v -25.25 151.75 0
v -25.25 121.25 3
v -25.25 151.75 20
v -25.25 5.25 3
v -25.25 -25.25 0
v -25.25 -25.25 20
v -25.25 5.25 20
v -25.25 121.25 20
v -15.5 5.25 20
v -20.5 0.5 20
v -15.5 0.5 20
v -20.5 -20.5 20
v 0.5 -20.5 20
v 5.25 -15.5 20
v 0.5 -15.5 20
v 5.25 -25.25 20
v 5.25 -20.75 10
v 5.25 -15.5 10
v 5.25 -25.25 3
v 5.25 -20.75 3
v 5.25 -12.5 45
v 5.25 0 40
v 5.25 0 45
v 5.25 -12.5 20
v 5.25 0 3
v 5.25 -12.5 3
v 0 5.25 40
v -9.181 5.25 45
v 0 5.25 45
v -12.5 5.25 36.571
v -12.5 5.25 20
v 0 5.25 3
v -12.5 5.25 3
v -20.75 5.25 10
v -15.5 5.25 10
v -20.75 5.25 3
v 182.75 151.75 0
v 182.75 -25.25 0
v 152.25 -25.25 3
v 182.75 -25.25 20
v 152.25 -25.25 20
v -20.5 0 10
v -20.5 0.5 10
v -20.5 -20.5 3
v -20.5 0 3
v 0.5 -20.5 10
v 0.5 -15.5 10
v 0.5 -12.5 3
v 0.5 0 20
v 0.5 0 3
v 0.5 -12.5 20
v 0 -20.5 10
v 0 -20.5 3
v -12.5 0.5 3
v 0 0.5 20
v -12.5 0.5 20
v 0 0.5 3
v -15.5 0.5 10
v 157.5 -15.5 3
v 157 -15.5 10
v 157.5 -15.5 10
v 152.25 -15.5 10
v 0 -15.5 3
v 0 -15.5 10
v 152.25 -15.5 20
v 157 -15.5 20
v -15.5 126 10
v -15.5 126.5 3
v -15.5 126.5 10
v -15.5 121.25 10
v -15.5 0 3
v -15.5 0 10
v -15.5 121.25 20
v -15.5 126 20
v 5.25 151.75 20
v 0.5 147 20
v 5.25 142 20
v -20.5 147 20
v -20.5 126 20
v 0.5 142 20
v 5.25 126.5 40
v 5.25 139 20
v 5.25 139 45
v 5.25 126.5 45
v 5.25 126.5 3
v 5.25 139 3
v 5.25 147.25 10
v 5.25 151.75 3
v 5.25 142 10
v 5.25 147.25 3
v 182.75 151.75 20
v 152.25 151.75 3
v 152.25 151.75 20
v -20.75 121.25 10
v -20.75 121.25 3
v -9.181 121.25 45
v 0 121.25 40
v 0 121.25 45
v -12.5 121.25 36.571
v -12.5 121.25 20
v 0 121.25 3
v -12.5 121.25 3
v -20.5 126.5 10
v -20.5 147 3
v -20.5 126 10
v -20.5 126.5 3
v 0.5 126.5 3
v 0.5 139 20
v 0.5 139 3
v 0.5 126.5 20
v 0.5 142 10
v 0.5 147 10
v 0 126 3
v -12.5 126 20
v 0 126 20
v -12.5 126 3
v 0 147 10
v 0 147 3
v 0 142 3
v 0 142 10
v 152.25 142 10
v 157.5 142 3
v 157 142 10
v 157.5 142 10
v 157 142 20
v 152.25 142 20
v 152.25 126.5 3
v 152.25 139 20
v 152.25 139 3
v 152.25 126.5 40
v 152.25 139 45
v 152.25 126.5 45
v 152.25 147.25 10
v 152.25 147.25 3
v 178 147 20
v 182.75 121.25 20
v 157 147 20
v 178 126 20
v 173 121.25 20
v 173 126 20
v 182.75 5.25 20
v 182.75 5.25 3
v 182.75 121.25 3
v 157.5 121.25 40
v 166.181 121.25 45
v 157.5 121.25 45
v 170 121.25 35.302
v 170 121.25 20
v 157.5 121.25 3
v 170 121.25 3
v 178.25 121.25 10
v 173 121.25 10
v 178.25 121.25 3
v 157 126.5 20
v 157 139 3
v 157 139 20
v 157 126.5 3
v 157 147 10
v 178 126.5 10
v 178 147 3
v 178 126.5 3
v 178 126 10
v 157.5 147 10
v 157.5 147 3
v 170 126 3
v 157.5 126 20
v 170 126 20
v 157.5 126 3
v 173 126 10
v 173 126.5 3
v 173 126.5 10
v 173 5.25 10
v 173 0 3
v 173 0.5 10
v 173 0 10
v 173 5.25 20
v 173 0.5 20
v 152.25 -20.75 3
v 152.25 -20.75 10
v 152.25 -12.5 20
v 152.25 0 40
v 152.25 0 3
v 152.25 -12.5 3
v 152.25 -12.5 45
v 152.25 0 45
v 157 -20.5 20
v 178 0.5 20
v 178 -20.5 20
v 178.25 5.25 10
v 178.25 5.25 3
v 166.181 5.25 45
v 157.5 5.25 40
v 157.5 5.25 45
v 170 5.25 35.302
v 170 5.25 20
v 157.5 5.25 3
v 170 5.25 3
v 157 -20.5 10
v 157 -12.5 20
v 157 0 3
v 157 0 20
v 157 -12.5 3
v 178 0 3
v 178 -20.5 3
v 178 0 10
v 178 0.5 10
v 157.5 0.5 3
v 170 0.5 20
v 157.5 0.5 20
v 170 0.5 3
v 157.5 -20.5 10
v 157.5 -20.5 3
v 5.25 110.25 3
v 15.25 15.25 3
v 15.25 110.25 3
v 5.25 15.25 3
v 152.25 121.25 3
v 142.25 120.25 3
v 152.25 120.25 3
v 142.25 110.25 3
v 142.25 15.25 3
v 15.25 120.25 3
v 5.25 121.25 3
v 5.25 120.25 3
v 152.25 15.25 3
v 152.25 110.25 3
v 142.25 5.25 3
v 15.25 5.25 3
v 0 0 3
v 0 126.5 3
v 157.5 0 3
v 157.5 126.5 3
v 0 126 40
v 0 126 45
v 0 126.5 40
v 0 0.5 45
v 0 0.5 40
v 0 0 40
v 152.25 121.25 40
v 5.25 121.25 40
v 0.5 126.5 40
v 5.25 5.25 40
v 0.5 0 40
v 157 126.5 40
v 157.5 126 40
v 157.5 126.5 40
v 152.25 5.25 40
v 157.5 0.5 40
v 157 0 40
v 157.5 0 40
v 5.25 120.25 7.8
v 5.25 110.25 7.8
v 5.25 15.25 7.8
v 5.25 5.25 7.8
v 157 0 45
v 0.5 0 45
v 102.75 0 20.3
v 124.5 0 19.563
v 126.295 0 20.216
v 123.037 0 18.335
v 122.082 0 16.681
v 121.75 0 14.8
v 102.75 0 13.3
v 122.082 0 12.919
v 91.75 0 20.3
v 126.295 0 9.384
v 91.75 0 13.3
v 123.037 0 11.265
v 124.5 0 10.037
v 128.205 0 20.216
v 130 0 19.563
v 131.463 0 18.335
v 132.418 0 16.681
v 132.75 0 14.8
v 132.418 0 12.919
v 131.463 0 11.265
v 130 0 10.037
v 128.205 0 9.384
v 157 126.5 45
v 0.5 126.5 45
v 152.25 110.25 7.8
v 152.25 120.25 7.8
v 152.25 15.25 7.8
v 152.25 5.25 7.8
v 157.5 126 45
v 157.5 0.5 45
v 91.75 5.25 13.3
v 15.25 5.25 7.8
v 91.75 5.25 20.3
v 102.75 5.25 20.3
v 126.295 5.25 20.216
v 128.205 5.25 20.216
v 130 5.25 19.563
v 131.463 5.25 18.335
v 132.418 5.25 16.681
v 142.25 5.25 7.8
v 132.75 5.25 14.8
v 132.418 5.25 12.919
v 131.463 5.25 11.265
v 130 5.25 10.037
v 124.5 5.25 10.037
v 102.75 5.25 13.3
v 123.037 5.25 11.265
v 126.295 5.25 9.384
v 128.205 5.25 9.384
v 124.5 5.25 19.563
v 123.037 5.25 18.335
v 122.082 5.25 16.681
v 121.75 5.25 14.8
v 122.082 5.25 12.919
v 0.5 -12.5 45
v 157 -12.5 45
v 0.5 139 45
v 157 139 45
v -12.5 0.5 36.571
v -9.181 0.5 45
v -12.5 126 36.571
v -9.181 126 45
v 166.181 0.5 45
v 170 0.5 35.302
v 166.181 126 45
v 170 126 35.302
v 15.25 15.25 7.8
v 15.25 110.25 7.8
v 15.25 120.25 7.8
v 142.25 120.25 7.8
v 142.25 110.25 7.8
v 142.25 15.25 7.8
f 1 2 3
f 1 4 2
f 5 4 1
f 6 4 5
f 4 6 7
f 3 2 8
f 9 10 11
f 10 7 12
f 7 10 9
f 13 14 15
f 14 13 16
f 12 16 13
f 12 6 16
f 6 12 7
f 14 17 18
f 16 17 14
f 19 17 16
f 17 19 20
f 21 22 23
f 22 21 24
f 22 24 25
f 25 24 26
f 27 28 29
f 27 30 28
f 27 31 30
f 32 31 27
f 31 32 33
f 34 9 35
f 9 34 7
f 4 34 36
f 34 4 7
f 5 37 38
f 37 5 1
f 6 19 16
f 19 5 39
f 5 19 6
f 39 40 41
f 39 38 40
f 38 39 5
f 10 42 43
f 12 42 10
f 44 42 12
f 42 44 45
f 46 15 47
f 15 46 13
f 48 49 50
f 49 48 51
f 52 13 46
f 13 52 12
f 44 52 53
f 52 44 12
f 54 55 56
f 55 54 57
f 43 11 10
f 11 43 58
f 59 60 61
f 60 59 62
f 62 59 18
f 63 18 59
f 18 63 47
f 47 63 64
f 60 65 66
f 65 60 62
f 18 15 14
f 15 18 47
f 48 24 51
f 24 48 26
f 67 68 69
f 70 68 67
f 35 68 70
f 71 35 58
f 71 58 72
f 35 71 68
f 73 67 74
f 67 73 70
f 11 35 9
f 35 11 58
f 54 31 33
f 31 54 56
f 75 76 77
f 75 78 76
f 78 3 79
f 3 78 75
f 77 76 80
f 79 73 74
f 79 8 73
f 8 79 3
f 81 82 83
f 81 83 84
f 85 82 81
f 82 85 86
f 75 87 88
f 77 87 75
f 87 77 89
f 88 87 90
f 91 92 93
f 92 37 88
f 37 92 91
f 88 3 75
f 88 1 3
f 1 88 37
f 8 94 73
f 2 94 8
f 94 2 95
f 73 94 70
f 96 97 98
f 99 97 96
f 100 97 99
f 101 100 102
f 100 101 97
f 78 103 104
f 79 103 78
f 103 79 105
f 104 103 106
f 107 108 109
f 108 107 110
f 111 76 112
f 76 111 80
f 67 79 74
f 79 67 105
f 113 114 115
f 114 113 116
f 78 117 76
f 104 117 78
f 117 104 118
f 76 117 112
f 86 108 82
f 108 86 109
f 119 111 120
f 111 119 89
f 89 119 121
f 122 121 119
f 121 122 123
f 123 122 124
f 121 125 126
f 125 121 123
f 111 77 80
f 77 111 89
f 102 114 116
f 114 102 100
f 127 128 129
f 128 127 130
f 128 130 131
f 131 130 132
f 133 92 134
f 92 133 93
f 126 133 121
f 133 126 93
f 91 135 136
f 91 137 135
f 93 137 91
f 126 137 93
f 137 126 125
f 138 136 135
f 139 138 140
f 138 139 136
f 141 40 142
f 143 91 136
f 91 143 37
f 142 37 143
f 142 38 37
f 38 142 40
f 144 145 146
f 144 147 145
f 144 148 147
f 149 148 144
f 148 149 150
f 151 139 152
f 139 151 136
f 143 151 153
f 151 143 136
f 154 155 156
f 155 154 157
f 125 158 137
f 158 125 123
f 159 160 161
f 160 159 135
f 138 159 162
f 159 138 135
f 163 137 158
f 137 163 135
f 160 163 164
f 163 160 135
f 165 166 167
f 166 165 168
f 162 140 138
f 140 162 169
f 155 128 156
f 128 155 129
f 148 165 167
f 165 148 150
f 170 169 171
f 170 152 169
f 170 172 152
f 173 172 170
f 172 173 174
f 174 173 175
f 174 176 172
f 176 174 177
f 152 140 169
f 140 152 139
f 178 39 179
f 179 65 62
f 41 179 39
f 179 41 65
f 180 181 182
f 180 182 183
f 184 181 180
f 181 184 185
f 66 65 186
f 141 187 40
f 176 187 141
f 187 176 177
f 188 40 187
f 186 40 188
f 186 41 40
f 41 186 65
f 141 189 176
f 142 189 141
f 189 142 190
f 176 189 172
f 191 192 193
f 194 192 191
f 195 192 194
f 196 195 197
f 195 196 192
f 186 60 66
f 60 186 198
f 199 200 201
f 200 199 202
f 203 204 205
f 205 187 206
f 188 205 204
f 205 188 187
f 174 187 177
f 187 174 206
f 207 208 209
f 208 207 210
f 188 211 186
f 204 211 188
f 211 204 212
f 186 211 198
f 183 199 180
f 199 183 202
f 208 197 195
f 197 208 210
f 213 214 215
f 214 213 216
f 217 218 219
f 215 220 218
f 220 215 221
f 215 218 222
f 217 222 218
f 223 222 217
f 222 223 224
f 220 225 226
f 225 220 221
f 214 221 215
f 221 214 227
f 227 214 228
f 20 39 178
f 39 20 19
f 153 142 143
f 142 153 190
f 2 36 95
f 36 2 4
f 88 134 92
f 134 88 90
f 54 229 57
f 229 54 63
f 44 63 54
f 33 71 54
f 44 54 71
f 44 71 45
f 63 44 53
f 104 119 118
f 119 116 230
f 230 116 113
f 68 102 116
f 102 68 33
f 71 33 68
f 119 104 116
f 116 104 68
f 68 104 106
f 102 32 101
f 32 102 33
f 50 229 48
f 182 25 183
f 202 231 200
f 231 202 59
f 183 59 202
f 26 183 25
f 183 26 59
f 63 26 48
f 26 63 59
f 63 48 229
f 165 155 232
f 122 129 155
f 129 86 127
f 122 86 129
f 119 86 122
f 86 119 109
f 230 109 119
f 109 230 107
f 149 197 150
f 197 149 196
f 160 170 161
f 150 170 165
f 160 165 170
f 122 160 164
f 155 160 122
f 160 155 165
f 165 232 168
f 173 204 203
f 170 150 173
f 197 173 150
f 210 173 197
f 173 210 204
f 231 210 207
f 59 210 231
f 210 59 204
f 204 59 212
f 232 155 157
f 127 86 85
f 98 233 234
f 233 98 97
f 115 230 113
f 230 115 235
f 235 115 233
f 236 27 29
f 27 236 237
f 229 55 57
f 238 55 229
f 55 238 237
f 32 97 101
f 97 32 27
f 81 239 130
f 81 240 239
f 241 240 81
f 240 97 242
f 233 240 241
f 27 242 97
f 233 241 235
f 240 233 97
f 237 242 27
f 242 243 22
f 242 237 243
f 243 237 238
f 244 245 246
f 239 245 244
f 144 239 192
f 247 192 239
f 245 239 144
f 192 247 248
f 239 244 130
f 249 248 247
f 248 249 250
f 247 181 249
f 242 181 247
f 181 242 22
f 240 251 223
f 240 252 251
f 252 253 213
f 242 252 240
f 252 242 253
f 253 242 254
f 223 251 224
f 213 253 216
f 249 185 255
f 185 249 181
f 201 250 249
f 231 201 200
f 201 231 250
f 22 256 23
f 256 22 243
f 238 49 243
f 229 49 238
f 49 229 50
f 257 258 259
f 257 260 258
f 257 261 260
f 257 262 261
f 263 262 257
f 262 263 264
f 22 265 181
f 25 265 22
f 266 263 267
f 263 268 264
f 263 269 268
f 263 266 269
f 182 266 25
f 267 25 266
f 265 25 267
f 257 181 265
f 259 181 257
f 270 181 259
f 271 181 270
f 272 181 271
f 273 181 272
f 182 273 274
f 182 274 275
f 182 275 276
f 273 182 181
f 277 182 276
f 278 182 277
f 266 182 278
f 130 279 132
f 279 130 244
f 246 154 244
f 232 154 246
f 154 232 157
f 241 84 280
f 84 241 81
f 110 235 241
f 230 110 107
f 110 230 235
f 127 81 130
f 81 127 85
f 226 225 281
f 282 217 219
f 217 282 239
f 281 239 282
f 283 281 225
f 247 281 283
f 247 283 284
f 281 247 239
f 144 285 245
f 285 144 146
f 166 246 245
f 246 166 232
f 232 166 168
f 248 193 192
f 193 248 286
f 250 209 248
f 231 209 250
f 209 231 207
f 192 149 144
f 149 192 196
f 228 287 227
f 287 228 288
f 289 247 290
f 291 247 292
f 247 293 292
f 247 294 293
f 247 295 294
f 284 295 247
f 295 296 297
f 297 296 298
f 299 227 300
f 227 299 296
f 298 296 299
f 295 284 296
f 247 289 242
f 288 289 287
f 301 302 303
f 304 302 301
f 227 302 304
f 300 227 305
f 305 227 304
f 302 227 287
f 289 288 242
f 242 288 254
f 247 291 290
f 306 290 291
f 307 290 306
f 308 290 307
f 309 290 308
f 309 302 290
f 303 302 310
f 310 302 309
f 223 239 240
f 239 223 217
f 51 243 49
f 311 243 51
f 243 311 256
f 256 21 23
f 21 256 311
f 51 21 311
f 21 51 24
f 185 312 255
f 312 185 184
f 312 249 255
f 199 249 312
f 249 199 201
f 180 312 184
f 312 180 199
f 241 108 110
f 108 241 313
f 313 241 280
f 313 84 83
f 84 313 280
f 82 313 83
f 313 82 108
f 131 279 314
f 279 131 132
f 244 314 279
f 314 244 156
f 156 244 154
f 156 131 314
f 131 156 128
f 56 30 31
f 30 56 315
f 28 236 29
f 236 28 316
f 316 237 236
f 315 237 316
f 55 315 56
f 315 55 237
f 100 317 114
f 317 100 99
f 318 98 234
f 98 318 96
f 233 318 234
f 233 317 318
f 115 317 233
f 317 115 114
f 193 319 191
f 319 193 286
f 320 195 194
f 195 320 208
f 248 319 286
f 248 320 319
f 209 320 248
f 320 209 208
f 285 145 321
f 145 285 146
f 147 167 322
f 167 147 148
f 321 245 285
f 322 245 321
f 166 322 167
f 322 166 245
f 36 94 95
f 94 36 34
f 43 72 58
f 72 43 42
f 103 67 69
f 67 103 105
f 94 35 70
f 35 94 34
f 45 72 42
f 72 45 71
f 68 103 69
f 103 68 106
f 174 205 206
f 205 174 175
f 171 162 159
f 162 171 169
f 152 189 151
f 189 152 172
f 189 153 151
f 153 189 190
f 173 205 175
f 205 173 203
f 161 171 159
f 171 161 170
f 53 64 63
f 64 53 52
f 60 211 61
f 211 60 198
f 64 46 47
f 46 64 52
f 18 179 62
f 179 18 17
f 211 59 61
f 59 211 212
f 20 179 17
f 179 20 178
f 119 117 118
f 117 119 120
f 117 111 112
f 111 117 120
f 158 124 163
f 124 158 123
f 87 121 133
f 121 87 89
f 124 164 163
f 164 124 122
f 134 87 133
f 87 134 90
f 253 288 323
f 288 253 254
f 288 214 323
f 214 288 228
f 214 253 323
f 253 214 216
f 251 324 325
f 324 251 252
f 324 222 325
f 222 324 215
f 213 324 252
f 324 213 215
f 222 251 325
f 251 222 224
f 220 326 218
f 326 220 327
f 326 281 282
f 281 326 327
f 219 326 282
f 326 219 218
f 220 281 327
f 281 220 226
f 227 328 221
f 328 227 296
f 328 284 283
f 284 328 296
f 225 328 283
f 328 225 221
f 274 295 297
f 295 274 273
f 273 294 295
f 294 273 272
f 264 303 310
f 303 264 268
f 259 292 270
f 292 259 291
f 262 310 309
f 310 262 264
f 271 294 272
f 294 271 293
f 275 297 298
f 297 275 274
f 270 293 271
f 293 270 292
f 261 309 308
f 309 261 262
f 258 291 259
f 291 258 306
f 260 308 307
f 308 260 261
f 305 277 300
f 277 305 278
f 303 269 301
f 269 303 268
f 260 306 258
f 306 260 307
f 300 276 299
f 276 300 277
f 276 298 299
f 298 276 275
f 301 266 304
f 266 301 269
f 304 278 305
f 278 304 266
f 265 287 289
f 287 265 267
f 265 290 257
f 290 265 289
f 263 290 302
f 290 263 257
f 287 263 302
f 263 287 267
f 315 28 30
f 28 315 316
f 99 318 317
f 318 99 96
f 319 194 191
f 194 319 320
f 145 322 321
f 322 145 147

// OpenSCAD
/* This piece was designed by Shawn French (McMaster University, Ontario, Canada)
It is part of the SCIFIcube (SCIentific Fluorescence Imaging cube), a small and portable 3D-printed
fluorescence imager for bacteria, yeast, or any colony-forming organism.  It works well with solid
agar medium, and can image high density samples rapidly over time.  

Details can be found at https://www.github.com/sfrench007/scificube

Copyright 2017 McMaster University

Redistribution and use in source and binary forms, with or without modification, are permitted provided that the following conditions are met:

1. Redistributions of source code must retain the above copyright notice, this list of conditions and the following disclaimer.

2. Redistributions in binary form must reproduce the above copyright notice, this list of conditions and the following disclaimer in the documentation and/or other materials provided with the distribution.

3. Neither the name of the copyright holder nor the names of its contributors may be used to endorse or promote products derived from this software without specific prior written permission.

THIS SOFTWARE IS PROVIDED BY THE COPYRIGHT HOLDERS AND CONTRIBUTORS "AS IS" AND ANY EXPRESS OR IMPLIED WARRANTIES, INCLUDING, BUT NOT LIMITED TO, THE IMPLIED WARRANTIES OF MERCHANTABILITY AND FITNESS FOR A PARTICULAR PURPOSE ARE DISCLAIMED. IN NO EVENT SHALL THE COPYRIGHT HOLDER OR CONTRIBUTORS BE LIABLE FOR ANY DIRECT, INDIRECT, INCIDENTAL, SPECIAL, EXEMPLARY, OR CONSEQUENTIAL DAMAGES (INCLUDING, BUT NOT LIMITED TO, PROCUREMENT OF SUBSTITUTE GOODS OR SERVICES; LOSS OF USE, DATA, OR PROFITS; OR BUSINESS INTERRUPTION) HOWEVER CAUSED AND ON ANY THEORY OF LIABILITY, WHETHER IN CONTRACT, STRICT LIABILITY, OR TORT (INCLUDING NEGLIGENCE OR OTHERWISE) ARISING IN ANY WAY OUT OF THE USE OF THIS SOFTWARE, EVEN IF ADVISED OF THE POSSIBILITY OF SUCH DAMAGE.

*/

// Height 175 mm (camera to base)
// Width 157 mm
// Depth 134 mm
// 135 mm camera to top of transilluminator
// 40 mm transilluminator height (base height)

boardWidth = 147;
boardDepth = 115;
boardHeight = 2;
acWidth = 11.5;
acHeight = 9;
acOffset = 5;
acRad = (acHeight/2)+1;
switchWidth = 11;
switchHeight = 7;
switchOffset = 3.5;

transDepth = 126.5;
transWidth = 157.5;
transHeight = 40;
transWallWidth = (transWidth-boardWidth)/2;

rigWallWidth = 3;
rigHeight = 175;
rigWidth = transWidth + (rigWallWidth * 2);
rigDepth = transDepth + (rigWallWidth * 2);
echo(rigWidth);
echo(rigDepth);
riserHeight = 4.8;
riserWidth = 10;

railWidth = 20;
sideWallWidth = 2;
allowance = 1;
slitDepth = 10;

// The rig first
module drawRig() {
	union() {
		translate([-(railWidth+transWallWidth),-(railWidth+transWallWidth),0]) cube(size = [rigWidth+((railWidth)*2)+transWallWidth-(allowance/2)-0.25, rigDepth+((railWidth)*2)+transWallWidth-(allowance/2)-0.25, rigWallWidth], center = false);

		// Bottom left brace
		translate([-(railWidth+transWallWidth),-(railWidth+transWallWidth),0]) 
		difference() {
			cube(size=[railWidth+(transWallWidth*2),railWidth+(transWallWidth*2),transHeight/2],center=false);
			translate([transWallWidth-(allowance/2),transWallWidth-(allowance/2),0]) cube(size=[railWidth+allowance,railWidth+allowance,transHeight/2],center=false);
			// Slits for sliding walls
			translate([railWidth+transWallWidth,transWallWidth+(railWidth*1/4)-(allowance/2),0]) cube(size=[transWallWidth,sideWallWidth+allowance,transHeight/2]);
			translate([transWallWidth+(railWidth*1/4)-(allowance/2),railWidth+transWallWidth,0]) cube(size=[sideWallWidth+allowance,transWallWidth,transHeight/2]);
		}
		translate([-(railWidth+transWallWidth),-(railWidth+transWallWidth),0]) cube(size=[railWidth+(transWallWidth*2),railWidth+(transWallWidth*2),rigWallWidth],center=false);

		// Top left brace
		translate([-(railWidth+transWallWidth),transDepth-transWallWidth,0]) 
		difference() {
			cube(size=[railWidth+(transWallWidth*2),railWidth+(transWallWidth*2),transHeight/2],center=false);
			translate([transWallWidth-(allowance/2),transWallWidth-(allowance/2),0]) cube(size=[railWidth+allowance,railWidth+allowance,transHeight/2],center=false);
			// Slits for sliding walls
			translate([railWidth+transWallWidth,transWallWidth+(railWidth*3/4)-(allowance/2)-sideWallWidth,0]) cube(size=[transWallWidth,sideWallWidth+allowance,transHeight/2]);
			translate([transWallWidth+(railWidth*1/4)-(allowance/2),0,0]) cube(size=[sideWallWidth+allowance,transWallWidth,transHeight/2]);
		}
		translate([-(railWidth+transWallWidth),transDepth-transWallWidth,0]) cube(size=[railWidth+(transWallWidth*2),railWidth+(transWallWidth*2),rigWallWidth],center=false);

		// Top Right brace
		translate([transWidth-transWallWidth,transDepth-transWallWidth,0]) 
		difference() {
			cube(size=[railWidth+(transWallWidth*2),railWidth+(transWallWidth*2),transHeight/2],center=false);
			translate([transWallWidth-(allowance/2),transWallWidth-(allowance/2),0]) cube(size=[railWidth+allowance,railWidth+allowance,transHeight/2],center=false);
			// Slits for sliding walls
			translate([0,transWallWidth+(railWidth*3/4)-(allowance/2)-sideWallWidth,0]) cube(size=[transWallWidth,sideWallWidth+allowance,transHeight/2]);
			translate([transWallWidth+(railWidth*3/4)-(allowance/2)-sideWallWidth,0,0]) cube(size=[sideWallWidth+allowance,transWallWidth,transHeight/2]);
		}
		translate([transWidth-transWallWidth,transDepth-transWallWidth,0]) cube(size=[railWidth+(transWallWidth*2),railWidth+(transWallWidth*2),rigWallWidth],center=false);

		// Bottom right brace
		translate([transWidth-transWallWidth,,-(railWidth+transWallWidth),0]) 
		difference() {
			cube(size=[railWidth+(transWallWidth*2),railWidth+(transWallWidth*2),transHeight/2],center=false);
			translate([transWallWidth-(allowance/2),transWallWidth-(allowance/2),0]) cube(size=[railWidth+allowance,railWidth+allowance,transHeight/2],center=false);
			// Slits for sliding walls
			translate([0,transWallWidth+(railWidth*1/4)-(allowance/2),0]) cube(size=[transWallWidth,sideWallWidth+allowance,transHeight/2]);
			translate([transWallWidth+(railWidth*3/4)-(allowance/2)-sideWallWidth,railWidth+transWallWidth,0]) cube(size=[sideWallWidth+allowance,transWallWidth,transHeight/2]);
		}
		translate([transWidth-transWallWidth,,-(railWidth+transWallWidth),0]) cube(size=[railWidth+(transWallWidth*2),railWidth+(transWallWidth*2),rigWallWidth],center=false);
	}
}

// Then the transilluminator walls 
module drawTrans() {
    union() {
        cube(size = [transWallWidth, transDepth, transHeight], center = false);
        translate([(transWidth-transWallWidth),0,0]) cube(size = [transWallWidth, transDepth, transHeight], center = false);
        cube(size = [transWidth,transWallWidth,transHeight], center = false);
        translate([0,(transDepth-transWallWidth),0]) cube(size = [transWidth,transWallWidth,transHeight], center = false);

        // Now the little locks for the excitation filter
        translate([(allowance/2),(allowance/2)+sideWallWidth-(railWidth*3/4),transHeight/2]) cube(size=[transWallWidth-(allowance/2),railWidth*3/4-sideWallWidth-(allowance/2),(transHeight/2)+5],center=false);
        translate([transWidth-transWallWidth,(allowance/2)+sideWallWidth-(railWidth*3/4),transHeight/2]) cube(size=[transWallWidth-(allowance/2),railWidth*3/4-sideWallWidth-(allowance/2),(transHeight/2)+5],center=false);
        translate([(allowance/2),transDepth,transHeight/2]) cube(size=[transWallWidth-(allowance/2),railWidth*3/4-sideWallWidth-(allowance/2),(transHeight/2)+5],center=false);
        translate([transWidth-transWallWidth,transDepth,transHeight/2]) cube(size=[transWallWidth-(allowance/2),railWidth*3/4-sideWallWidth-(allowance/2),(transHeight/2)+5],center=false);

        translate([-(railWidth*3/4)+sideWallWidth+(allowance/2),(allowance/2),transHeight/2]) cube(size=[railWidth*3/4-sideWallWidth-(allowance/2),transWallWidth-(allowance/2),(transHeight/2)+5],center=false);
        translate([-(railWidth*3/4)+sideWallWidth+(allowance/2),transDepth-transWallWidth,transHeight/2]) cube(size=[railWidth*3/4-sideWallWidth-(allowance/2),transWallWidth-(allowance/2),(transHeight/2)+5],center=false);
        translate([transWidth,(allowance/2),transHeight/2]) cube(size=[railWidth*3/4-sideWallWidth-(allowance/2),transWallWidth-(allowance/2),(transHeight/2)+5],center=false);
        translate([transWidth,transDepth-transWallWidth,transHeight/2]) cube(size=[railWidth*3/4-sideWallWidth-(allowance/2),transWallWidth-(allowance/2),(transHeight/2)+5],center=false);

        // Extra rails to prevent gaps in the walls
        translate([-(railWidth*3/4)-transWallWidth-(allowance/2),0,0]) cube(size = [transWallWidth, transDepth, transHeight/4], center = false);
        translate([(transWidth+(railWidth*3/4)+(allowance/2)),0,0]) cube(size = [transWallWidth, transDepth, transHeight/4], center = false);
        translate([0,-(railWidth*3/4)-transWallWidth-(allowance/2),0]) cube(size = [transWidth,transWallWidth,transHeight/4], center = false);
        translate([0,(transDepth+(railWidth*3/4)+(allowance/2)),0]) cube(size = [transWidth,transWallWidth,transHeight/4], center = false);        
    }
}

// Corner risers for circuit board (4.8 mm high)
module drawRisers() {
    union() {
        translate([transWallWidth,transWallWidth,rigWallWidth]) cube(size = [riserWidth,riserWidth,riserHeight], center = false);
        translate([transWallWidth,(transWallWidth+boardDepth-riserWidth),rigWallWidth]) cube([riserWidth,riserWidth,riserHeight], center = false);
        translate([(transWallWidth+boardWidth-riserWidth),(transWallWidth+boardDepth-riserWidth),rigWallWidth]) cube([riserWidth,riserWidth,riserHeight], center = false);
        translate([(transWallWidth+boardWidth-riserWidth),transWallWidth,rigWallWidth]) cube([riserWidth,riserWidth,riserHeight], center = false);
    }
}

module prism(l, w, h){
  polyhedron(
    points=[[0,0,0], [l,0,0], [l,w,0], [0,w,0], [0,w,h], [l,w,h]],
    faces=[[0,1,2,3],[5,4,3,2],[0,4,5,1],[0,3,4],[5,2,1]]
  );
}

// Draw everything including the holes for the cords
difference() {
    union() {
        drawRig();
        drawTrans();
        drawRisers();
    }
    translate([(transWallWidth+boardWidth-25),rigWallWidth+30,(rigWallWidth+riserHeight+boardHeight+acOffset)]) rotate(a = [90,0,0]) cylinder(h=(rigWallWidth+transWallWidth+30),r1=acRad,r2=acRad,center=false);
    translate([(transWallWidth+boardWidth-60.5),-rigWallWidth,(rigWallWidth+riserHeight+boardHeight+switchOffset)]) cube(size = [switchWidth,(rigWallWidth+transWallWidth),switchHeight],center=false);

    // Triangles to aid in wall sliding
    translate([-8,8,48]) rotate([0,180,90]) prism(l=railWidth/2,w=transWallWidth,h=transHeight/3);
    translate([-8,128,48]) rotate([0,180,90]) prism(l=railWidth/2,w=transWallWidth,h=transHeight/3);
    translate([165,-2,48]) rotate([0,180,270]) prism(l=railWidth/2,w=transWallWidth,h=transHeight/3);
    translate([165,118,48]) rotate([0,180,270]) prism(l=railWidth/2,w=transWallWidth,h=transHeight/3);
}
